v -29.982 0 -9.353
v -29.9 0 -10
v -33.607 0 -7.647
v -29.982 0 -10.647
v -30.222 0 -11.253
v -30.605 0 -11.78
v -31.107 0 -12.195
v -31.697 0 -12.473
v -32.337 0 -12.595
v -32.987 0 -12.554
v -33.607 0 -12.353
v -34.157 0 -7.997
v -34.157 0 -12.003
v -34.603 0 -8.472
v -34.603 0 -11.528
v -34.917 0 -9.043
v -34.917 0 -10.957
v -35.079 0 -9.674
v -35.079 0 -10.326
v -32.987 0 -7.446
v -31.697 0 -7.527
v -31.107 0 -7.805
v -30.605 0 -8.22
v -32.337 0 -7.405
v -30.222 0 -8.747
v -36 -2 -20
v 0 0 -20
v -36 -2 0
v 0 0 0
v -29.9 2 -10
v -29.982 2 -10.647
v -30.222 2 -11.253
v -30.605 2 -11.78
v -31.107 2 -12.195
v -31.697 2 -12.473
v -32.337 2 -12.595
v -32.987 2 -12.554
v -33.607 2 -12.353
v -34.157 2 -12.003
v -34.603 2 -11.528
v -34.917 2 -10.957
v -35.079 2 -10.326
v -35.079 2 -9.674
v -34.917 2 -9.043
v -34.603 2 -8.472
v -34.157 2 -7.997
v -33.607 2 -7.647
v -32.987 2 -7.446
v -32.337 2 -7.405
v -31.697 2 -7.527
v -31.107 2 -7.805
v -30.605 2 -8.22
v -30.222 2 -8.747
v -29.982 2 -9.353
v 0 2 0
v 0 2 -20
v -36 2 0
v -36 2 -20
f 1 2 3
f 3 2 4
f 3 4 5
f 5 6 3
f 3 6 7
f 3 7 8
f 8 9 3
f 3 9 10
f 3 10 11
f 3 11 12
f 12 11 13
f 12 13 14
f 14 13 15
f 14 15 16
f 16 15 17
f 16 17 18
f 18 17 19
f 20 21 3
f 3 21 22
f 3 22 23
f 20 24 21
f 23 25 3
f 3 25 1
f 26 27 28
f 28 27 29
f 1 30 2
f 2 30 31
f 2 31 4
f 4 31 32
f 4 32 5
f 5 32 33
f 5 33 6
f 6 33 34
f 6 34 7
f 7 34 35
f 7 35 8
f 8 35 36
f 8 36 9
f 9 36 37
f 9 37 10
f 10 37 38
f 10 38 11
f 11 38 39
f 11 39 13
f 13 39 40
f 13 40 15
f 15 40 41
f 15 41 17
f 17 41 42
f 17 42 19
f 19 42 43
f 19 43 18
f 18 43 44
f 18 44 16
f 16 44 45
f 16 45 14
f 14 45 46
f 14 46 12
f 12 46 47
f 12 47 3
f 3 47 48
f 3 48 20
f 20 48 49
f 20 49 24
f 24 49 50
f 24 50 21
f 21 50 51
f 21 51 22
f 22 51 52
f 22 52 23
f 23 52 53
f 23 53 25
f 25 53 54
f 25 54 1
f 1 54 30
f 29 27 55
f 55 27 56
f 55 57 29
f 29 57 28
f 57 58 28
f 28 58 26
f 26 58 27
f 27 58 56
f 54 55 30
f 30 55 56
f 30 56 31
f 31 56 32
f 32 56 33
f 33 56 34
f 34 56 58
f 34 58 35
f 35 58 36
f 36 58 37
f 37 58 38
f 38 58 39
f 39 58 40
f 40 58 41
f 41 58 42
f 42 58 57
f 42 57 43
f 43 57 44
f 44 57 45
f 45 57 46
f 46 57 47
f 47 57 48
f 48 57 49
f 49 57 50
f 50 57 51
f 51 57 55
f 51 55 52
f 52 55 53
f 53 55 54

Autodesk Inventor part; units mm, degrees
ref_plane "YZ Plane" through (0, 0, 0) normal (1, 0, 0) x (0, 1, 0)
ref_plane "XZ Plane" through (0, 0, 0) normal (0, 1, 0) x (-1, 0, 0)
ref_plane "XY Plane" through (0, 0, 0) normal (0, 0, 1) x (1, 0, 0)
sketch "Sketch1" plane through (0, 0, 0) normal (0, 1, 0) x (-1, 0, 0)
  line L0 (0, 0) -> (36, 0)
  line L1 (36, 0) -> (36, -20)
  line L2 (36, -20) -> (0, -20)
  line L3 (0, -20) -> (0, 0)
  dimension "d0" = 36
  dimension "d1" = 20
extrude "Extrusion1" add sketch "Sketch1" along normal blind 2
sketch "Sketch2" plane through (0, 2, 0) normal (0, 1, 0) x (1, 0, 0)
  line L0 (-36, 20) -> (-36, 0) projected
  line L1 (-36, 10) -> (-32.5, 10)
  circle A0 centre (-32.5, 10) radius 2.6
  point P0 (0, 0)
  dimension "d4" = 3.5
  dimension "d5" = 5.2
extrude "Extrusion2" cut sketch "Sketch2" against normal blind 2
sketch "Sketch3" plane through (-36, 0, 0) normal (0, 0, 1) x (1, 0, 0)
  line L0 (36, 0) -> (0, 0) projected
  line L1 (0, 0) -> (0, -2)
  line L2 (0, -2) -> (36, 0)
  dimension "d8" = 2
extrude "Extrusion3" add sketch "Sketch3" against normal up to surface (20 mm away)
properties part number "opakowanie"
